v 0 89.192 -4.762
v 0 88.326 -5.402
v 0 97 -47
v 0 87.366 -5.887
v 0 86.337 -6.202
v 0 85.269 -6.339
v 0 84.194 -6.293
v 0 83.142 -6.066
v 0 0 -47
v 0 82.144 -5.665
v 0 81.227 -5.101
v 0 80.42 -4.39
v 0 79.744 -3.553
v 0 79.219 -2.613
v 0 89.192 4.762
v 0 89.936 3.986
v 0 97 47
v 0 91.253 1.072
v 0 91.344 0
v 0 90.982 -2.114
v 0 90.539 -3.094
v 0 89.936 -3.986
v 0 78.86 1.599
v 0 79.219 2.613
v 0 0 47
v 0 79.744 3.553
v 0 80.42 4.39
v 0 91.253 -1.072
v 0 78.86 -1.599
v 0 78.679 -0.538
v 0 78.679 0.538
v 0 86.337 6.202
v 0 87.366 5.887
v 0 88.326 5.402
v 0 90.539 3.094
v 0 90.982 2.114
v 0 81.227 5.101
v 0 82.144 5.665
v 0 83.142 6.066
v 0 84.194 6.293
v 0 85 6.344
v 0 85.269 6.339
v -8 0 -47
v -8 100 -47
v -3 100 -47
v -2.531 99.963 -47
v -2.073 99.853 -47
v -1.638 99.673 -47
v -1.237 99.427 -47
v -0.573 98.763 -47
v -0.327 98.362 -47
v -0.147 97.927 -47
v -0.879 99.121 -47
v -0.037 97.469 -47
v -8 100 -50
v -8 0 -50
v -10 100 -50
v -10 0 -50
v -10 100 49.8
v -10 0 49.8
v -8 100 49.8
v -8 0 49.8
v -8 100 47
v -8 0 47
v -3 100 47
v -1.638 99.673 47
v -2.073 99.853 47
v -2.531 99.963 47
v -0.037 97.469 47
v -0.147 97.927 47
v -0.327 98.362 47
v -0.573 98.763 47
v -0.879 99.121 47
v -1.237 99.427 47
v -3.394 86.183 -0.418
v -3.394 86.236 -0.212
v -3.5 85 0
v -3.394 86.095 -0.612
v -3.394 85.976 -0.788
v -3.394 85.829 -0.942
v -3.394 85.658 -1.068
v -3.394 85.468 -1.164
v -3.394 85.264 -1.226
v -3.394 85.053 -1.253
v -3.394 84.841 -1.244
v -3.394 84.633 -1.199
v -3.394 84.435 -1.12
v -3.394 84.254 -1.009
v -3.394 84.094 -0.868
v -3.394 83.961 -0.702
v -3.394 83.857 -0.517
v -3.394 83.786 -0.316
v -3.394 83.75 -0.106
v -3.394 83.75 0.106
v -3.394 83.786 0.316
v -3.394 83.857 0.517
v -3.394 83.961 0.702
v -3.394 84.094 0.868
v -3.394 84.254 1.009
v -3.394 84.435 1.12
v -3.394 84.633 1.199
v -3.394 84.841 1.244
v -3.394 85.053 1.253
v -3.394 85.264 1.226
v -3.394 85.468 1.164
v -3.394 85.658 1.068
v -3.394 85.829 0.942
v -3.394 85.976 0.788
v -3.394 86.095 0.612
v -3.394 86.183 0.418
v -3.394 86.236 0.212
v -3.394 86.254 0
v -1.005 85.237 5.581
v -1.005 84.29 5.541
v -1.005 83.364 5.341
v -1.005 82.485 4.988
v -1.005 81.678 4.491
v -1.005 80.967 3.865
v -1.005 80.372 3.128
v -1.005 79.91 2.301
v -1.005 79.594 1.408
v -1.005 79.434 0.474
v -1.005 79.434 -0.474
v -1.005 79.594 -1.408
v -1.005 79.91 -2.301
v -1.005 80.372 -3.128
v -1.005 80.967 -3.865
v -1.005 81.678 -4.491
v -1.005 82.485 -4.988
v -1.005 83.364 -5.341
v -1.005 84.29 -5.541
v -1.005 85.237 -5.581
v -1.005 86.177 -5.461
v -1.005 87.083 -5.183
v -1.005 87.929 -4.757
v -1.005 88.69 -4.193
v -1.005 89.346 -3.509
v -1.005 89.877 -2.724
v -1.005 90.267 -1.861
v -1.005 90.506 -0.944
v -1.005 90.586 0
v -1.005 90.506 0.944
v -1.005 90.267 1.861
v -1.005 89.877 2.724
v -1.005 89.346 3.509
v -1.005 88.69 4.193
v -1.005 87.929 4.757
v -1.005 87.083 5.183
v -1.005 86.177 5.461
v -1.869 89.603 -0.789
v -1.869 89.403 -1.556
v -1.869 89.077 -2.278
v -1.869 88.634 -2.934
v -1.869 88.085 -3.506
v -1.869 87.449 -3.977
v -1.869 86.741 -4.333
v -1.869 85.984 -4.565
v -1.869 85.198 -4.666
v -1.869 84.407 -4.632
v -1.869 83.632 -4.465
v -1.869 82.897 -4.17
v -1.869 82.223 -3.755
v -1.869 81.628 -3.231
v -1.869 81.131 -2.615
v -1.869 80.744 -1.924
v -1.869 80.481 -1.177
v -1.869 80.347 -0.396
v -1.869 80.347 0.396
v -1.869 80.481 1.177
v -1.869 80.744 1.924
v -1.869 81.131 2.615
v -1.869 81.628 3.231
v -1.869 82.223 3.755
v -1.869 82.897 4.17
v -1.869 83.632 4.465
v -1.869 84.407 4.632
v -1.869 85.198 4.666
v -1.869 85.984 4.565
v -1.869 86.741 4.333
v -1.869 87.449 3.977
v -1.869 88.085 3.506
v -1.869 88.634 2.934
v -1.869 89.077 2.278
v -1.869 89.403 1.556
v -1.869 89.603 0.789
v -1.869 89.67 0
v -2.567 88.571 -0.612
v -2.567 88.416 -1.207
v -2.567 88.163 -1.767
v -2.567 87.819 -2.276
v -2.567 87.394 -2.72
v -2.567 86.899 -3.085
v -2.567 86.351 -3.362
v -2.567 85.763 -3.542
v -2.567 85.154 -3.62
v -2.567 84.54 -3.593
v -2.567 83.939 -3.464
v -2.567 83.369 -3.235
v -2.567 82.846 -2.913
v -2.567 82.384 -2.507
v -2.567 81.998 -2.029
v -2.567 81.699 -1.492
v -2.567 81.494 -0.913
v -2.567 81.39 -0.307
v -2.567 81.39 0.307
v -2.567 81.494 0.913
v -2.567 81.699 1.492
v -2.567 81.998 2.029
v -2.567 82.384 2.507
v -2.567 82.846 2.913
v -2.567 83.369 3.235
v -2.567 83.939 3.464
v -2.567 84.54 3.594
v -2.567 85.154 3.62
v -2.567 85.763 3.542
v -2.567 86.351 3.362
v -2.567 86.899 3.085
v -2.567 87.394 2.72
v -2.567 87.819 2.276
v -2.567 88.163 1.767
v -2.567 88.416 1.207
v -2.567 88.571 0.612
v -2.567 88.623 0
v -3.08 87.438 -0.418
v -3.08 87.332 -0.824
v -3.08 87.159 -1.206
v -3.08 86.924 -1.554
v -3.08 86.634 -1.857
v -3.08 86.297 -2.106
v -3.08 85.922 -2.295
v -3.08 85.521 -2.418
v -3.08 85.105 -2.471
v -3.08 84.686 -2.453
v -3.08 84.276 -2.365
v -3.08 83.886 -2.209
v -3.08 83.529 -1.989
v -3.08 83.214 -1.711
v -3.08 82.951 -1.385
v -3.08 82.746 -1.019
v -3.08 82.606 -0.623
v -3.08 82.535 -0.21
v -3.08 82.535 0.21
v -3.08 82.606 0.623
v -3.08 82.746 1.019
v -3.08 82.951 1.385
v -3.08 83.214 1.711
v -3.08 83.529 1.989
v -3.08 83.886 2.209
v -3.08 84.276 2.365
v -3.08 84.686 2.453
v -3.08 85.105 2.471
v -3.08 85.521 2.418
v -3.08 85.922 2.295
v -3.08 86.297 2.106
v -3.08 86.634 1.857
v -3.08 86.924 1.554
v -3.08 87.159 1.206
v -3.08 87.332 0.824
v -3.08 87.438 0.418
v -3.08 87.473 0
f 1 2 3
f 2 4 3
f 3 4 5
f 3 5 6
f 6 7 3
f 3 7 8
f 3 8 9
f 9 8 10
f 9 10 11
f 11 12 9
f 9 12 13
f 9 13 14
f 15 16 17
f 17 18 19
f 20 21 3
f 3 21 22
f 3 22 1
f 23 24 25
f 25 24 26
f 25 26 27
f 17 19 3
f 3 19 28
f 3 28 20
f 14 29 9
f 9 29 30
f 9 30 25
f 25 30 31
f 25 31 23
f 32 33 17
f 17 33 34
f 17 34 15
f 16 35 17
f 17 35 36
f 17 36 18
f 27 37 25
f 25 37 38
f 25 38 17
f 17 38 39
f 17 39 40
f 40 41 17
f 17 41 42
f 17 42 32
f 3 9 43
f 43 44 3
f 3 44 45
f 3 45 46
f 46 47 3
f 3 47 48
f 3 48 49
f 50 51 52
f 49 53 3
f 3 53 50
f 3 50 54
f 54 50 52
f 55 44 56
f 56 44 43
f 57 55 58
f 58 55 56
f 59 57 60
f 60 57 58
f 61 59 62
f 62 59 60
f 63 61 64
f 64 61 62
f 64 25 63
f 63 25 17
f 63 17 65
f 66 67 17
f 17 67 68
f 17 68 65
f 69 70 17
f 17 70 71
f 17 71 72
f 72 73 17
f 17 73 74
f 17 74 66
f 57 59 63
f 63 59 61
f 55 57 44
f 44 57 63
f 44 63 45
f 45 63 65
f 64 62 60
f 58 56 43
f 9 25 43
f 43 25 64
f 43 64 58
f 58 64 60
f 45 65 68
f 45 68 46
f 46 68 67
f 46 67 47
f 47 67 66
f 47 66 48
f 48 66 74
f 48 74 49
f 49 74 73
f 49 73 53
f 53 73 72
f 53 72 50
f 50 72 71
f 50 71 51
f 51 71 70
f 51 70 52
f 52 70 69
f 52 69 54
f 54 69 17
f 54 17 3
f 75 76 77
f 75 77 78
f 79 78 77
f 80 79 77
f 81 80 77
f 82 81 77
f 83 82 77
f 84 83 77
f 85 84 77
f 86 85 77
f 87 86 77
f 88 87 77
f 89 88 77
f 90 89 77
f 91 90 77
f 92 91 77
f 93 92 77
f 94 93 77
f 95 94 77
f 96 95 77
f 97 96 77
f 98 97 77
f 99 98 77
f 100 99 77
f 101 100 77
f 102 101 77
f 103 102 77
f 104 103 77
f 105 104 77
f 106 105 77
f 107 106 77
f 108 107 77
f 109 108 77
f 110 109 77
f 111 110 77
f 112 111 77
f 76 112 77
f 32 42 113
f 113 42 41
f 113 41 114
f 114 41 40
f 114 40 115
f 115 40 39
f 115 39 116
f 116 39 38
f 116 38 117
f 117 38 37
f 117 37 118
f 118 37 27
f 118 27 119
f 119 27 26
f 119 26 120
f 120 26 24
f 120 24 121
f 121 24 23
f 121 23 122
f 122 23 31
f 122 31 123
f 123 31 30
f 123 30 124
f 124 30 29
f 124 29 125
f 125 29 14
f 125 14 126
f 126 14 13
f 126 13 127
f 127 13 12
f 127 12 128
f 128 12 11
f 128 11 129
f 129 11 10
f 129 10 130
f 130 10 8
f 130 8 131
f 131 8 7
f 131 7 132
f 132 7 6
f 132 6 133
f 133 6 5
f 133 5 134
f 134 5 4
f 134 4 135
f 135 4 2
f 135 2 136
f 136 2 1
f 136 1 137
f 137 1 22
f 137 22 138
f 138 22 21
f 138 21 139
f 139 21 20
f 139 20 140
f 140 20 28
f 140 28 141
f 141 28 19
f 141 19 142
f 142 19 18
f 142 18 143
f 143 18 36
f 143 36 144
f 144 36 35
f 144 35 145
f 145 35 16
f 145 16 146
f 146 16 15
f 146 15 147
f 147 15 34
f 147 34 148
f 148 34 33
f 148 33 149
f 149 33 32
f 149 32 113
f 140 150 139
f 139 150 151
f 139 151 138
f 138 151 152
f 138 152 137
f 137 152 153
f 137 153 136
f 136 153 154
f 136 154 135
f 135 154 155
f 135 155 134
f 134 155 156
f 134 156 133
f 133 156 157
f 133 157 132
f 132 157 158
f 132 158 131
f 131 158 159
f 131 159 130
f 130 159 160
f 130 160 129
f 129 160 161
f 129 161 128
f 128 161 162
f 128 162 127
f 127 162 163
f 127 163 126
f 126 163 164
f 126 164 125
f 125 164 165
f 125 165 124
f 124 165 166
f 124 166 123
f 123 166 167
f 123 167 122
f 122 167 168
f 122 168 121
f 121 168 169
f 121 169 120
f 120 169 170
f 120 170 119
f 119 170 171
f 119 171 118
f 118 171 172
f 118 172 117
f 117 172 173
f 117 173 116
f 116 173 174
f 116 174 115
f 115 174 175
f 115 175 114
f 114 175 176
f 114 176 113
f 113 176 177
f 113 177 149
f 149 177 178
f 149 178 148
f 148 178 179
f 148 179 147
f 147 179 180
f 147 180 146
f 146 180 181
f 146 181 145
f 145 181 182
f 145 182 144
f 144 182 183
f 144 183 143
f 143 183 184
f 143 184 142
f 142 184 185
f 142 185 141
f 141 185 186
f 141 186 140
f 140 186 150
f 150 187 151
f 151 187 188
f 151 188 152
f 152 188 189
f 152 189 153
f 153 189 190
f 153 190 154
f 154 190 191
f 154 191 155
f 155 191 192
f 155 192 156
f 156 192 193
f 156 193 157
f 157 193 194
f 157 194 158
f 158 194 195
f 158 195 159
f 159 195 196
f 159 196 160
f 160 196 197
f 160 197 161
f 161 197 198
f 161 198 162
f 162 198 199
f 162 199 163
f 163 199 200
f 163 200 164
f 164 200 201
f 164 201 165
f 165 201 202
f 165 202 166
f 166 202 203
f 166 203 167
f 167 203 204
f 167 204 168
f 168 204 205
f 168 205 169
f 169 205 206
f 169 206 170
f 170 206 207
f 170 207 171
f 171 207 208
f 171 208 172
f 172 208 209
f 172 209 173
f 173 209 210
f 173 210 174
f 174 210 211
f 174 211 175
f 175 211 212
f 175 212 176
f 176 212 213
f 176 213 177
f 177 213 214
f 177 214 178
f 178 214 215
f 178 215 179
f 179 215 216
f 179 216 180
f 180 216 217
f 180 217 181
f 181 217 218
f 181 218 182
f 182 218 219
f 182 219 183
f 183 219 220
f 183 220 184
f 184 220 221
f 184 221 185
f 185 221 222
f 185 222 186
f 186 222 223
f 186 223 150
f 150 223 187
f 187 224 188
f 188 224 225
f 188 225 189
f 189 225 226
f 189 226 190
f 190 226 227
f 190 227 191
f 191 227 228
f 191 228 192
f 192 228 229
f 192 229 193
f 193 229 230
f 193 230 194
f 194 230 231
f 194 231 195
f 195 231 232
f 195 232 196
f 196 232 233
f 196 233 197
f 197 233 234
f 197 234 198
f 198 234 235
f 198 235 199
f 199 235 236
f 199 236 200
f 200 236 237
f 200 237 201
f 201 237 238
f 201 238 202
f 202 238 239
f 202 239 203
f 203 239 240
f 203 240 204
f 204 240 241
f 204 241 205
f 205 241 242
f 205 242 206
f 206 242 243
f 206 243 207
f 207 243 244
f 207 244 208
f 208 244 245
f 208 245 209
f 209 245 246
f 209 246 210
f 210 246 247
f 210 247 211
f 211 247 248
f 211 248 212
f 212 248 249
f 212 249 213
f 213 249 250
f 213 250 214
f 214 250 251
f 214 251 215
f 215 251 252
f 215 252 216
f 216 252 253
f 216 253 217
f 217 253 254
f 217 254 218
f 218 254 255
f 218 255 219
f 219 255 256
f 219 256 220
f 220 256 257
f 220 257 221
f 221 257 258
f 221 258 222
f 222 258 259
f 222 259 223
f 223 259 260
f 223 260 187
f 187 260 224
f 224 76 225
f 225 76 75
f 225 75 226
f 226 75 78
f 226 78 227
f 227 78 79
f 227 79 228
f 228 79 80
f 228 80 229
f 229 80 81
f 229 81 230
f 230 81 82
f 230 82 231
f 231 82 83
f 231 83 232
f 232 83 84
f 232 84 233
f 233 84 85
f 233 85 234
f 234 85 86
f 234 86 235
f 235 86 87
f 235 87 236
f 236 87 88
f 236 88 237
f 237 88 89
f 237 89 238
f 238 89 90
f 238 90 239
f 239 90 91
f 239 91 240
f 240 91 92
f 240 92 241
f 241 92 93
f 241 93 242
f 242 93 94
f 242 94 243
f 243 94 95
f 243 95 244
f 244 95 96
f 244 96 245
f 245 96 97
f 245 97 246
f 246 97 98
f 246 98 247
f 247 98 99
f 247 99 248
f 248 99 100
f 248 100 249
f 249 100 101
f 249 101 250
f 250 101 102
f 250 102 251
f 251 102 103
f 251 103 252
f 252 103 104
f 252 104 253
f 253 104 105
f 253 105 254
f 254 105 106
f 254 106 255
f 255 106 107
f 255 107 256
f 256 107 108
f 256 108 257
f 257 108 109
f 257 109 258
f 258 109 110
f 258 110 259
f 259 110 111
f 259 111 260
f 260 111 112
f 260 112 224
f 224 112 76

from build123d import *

# Parameters (mm, degrees)
BOSS_EXTRUDE1_DEPTH = 100
FILLET2_R           = 3


with BuildPart() as part:
    # Sketch2 → Boss-Extrude1 (new body)
    with BuildSketch(Plane(origin=(0, 0, 0), x_dir=(1, 0, 0), z_dir=(0, 1, 0))):
        Polygon((0, -47), (-8, -47), (-8, -49.8), (-10, -49.8), (-10, -47.4), (-10, 47.6), (-10, 50), (-8, 50), (-8, 47), (0, 47), align=None)
    extrude(amount=BOSS_EXTRUDE1_DEPTH)

    # Fillet2
    fillet2_edges = [part.edges().sort_by_distance(p)[0] for p in [
        (0, 100, 0),
    ]]
    fillet(fillet2_edges, radius=FILLET2_R)

    # Sketch3 → Cut-Revolve1 (revolve, cut)
    with BuildSketch(Plane.XY):
        with BuildLine():
            Line((-3.5, 85), (11.5, 85))
            ThreePointArc((11.5, 85), (4, 92.5), (-3.5, 85))
        make_face()
    revolve(axis=Axis((-3.5, 85, 0), (1, 0, 0)), mode=Mode.SUBTRACT)


solid = part.part
